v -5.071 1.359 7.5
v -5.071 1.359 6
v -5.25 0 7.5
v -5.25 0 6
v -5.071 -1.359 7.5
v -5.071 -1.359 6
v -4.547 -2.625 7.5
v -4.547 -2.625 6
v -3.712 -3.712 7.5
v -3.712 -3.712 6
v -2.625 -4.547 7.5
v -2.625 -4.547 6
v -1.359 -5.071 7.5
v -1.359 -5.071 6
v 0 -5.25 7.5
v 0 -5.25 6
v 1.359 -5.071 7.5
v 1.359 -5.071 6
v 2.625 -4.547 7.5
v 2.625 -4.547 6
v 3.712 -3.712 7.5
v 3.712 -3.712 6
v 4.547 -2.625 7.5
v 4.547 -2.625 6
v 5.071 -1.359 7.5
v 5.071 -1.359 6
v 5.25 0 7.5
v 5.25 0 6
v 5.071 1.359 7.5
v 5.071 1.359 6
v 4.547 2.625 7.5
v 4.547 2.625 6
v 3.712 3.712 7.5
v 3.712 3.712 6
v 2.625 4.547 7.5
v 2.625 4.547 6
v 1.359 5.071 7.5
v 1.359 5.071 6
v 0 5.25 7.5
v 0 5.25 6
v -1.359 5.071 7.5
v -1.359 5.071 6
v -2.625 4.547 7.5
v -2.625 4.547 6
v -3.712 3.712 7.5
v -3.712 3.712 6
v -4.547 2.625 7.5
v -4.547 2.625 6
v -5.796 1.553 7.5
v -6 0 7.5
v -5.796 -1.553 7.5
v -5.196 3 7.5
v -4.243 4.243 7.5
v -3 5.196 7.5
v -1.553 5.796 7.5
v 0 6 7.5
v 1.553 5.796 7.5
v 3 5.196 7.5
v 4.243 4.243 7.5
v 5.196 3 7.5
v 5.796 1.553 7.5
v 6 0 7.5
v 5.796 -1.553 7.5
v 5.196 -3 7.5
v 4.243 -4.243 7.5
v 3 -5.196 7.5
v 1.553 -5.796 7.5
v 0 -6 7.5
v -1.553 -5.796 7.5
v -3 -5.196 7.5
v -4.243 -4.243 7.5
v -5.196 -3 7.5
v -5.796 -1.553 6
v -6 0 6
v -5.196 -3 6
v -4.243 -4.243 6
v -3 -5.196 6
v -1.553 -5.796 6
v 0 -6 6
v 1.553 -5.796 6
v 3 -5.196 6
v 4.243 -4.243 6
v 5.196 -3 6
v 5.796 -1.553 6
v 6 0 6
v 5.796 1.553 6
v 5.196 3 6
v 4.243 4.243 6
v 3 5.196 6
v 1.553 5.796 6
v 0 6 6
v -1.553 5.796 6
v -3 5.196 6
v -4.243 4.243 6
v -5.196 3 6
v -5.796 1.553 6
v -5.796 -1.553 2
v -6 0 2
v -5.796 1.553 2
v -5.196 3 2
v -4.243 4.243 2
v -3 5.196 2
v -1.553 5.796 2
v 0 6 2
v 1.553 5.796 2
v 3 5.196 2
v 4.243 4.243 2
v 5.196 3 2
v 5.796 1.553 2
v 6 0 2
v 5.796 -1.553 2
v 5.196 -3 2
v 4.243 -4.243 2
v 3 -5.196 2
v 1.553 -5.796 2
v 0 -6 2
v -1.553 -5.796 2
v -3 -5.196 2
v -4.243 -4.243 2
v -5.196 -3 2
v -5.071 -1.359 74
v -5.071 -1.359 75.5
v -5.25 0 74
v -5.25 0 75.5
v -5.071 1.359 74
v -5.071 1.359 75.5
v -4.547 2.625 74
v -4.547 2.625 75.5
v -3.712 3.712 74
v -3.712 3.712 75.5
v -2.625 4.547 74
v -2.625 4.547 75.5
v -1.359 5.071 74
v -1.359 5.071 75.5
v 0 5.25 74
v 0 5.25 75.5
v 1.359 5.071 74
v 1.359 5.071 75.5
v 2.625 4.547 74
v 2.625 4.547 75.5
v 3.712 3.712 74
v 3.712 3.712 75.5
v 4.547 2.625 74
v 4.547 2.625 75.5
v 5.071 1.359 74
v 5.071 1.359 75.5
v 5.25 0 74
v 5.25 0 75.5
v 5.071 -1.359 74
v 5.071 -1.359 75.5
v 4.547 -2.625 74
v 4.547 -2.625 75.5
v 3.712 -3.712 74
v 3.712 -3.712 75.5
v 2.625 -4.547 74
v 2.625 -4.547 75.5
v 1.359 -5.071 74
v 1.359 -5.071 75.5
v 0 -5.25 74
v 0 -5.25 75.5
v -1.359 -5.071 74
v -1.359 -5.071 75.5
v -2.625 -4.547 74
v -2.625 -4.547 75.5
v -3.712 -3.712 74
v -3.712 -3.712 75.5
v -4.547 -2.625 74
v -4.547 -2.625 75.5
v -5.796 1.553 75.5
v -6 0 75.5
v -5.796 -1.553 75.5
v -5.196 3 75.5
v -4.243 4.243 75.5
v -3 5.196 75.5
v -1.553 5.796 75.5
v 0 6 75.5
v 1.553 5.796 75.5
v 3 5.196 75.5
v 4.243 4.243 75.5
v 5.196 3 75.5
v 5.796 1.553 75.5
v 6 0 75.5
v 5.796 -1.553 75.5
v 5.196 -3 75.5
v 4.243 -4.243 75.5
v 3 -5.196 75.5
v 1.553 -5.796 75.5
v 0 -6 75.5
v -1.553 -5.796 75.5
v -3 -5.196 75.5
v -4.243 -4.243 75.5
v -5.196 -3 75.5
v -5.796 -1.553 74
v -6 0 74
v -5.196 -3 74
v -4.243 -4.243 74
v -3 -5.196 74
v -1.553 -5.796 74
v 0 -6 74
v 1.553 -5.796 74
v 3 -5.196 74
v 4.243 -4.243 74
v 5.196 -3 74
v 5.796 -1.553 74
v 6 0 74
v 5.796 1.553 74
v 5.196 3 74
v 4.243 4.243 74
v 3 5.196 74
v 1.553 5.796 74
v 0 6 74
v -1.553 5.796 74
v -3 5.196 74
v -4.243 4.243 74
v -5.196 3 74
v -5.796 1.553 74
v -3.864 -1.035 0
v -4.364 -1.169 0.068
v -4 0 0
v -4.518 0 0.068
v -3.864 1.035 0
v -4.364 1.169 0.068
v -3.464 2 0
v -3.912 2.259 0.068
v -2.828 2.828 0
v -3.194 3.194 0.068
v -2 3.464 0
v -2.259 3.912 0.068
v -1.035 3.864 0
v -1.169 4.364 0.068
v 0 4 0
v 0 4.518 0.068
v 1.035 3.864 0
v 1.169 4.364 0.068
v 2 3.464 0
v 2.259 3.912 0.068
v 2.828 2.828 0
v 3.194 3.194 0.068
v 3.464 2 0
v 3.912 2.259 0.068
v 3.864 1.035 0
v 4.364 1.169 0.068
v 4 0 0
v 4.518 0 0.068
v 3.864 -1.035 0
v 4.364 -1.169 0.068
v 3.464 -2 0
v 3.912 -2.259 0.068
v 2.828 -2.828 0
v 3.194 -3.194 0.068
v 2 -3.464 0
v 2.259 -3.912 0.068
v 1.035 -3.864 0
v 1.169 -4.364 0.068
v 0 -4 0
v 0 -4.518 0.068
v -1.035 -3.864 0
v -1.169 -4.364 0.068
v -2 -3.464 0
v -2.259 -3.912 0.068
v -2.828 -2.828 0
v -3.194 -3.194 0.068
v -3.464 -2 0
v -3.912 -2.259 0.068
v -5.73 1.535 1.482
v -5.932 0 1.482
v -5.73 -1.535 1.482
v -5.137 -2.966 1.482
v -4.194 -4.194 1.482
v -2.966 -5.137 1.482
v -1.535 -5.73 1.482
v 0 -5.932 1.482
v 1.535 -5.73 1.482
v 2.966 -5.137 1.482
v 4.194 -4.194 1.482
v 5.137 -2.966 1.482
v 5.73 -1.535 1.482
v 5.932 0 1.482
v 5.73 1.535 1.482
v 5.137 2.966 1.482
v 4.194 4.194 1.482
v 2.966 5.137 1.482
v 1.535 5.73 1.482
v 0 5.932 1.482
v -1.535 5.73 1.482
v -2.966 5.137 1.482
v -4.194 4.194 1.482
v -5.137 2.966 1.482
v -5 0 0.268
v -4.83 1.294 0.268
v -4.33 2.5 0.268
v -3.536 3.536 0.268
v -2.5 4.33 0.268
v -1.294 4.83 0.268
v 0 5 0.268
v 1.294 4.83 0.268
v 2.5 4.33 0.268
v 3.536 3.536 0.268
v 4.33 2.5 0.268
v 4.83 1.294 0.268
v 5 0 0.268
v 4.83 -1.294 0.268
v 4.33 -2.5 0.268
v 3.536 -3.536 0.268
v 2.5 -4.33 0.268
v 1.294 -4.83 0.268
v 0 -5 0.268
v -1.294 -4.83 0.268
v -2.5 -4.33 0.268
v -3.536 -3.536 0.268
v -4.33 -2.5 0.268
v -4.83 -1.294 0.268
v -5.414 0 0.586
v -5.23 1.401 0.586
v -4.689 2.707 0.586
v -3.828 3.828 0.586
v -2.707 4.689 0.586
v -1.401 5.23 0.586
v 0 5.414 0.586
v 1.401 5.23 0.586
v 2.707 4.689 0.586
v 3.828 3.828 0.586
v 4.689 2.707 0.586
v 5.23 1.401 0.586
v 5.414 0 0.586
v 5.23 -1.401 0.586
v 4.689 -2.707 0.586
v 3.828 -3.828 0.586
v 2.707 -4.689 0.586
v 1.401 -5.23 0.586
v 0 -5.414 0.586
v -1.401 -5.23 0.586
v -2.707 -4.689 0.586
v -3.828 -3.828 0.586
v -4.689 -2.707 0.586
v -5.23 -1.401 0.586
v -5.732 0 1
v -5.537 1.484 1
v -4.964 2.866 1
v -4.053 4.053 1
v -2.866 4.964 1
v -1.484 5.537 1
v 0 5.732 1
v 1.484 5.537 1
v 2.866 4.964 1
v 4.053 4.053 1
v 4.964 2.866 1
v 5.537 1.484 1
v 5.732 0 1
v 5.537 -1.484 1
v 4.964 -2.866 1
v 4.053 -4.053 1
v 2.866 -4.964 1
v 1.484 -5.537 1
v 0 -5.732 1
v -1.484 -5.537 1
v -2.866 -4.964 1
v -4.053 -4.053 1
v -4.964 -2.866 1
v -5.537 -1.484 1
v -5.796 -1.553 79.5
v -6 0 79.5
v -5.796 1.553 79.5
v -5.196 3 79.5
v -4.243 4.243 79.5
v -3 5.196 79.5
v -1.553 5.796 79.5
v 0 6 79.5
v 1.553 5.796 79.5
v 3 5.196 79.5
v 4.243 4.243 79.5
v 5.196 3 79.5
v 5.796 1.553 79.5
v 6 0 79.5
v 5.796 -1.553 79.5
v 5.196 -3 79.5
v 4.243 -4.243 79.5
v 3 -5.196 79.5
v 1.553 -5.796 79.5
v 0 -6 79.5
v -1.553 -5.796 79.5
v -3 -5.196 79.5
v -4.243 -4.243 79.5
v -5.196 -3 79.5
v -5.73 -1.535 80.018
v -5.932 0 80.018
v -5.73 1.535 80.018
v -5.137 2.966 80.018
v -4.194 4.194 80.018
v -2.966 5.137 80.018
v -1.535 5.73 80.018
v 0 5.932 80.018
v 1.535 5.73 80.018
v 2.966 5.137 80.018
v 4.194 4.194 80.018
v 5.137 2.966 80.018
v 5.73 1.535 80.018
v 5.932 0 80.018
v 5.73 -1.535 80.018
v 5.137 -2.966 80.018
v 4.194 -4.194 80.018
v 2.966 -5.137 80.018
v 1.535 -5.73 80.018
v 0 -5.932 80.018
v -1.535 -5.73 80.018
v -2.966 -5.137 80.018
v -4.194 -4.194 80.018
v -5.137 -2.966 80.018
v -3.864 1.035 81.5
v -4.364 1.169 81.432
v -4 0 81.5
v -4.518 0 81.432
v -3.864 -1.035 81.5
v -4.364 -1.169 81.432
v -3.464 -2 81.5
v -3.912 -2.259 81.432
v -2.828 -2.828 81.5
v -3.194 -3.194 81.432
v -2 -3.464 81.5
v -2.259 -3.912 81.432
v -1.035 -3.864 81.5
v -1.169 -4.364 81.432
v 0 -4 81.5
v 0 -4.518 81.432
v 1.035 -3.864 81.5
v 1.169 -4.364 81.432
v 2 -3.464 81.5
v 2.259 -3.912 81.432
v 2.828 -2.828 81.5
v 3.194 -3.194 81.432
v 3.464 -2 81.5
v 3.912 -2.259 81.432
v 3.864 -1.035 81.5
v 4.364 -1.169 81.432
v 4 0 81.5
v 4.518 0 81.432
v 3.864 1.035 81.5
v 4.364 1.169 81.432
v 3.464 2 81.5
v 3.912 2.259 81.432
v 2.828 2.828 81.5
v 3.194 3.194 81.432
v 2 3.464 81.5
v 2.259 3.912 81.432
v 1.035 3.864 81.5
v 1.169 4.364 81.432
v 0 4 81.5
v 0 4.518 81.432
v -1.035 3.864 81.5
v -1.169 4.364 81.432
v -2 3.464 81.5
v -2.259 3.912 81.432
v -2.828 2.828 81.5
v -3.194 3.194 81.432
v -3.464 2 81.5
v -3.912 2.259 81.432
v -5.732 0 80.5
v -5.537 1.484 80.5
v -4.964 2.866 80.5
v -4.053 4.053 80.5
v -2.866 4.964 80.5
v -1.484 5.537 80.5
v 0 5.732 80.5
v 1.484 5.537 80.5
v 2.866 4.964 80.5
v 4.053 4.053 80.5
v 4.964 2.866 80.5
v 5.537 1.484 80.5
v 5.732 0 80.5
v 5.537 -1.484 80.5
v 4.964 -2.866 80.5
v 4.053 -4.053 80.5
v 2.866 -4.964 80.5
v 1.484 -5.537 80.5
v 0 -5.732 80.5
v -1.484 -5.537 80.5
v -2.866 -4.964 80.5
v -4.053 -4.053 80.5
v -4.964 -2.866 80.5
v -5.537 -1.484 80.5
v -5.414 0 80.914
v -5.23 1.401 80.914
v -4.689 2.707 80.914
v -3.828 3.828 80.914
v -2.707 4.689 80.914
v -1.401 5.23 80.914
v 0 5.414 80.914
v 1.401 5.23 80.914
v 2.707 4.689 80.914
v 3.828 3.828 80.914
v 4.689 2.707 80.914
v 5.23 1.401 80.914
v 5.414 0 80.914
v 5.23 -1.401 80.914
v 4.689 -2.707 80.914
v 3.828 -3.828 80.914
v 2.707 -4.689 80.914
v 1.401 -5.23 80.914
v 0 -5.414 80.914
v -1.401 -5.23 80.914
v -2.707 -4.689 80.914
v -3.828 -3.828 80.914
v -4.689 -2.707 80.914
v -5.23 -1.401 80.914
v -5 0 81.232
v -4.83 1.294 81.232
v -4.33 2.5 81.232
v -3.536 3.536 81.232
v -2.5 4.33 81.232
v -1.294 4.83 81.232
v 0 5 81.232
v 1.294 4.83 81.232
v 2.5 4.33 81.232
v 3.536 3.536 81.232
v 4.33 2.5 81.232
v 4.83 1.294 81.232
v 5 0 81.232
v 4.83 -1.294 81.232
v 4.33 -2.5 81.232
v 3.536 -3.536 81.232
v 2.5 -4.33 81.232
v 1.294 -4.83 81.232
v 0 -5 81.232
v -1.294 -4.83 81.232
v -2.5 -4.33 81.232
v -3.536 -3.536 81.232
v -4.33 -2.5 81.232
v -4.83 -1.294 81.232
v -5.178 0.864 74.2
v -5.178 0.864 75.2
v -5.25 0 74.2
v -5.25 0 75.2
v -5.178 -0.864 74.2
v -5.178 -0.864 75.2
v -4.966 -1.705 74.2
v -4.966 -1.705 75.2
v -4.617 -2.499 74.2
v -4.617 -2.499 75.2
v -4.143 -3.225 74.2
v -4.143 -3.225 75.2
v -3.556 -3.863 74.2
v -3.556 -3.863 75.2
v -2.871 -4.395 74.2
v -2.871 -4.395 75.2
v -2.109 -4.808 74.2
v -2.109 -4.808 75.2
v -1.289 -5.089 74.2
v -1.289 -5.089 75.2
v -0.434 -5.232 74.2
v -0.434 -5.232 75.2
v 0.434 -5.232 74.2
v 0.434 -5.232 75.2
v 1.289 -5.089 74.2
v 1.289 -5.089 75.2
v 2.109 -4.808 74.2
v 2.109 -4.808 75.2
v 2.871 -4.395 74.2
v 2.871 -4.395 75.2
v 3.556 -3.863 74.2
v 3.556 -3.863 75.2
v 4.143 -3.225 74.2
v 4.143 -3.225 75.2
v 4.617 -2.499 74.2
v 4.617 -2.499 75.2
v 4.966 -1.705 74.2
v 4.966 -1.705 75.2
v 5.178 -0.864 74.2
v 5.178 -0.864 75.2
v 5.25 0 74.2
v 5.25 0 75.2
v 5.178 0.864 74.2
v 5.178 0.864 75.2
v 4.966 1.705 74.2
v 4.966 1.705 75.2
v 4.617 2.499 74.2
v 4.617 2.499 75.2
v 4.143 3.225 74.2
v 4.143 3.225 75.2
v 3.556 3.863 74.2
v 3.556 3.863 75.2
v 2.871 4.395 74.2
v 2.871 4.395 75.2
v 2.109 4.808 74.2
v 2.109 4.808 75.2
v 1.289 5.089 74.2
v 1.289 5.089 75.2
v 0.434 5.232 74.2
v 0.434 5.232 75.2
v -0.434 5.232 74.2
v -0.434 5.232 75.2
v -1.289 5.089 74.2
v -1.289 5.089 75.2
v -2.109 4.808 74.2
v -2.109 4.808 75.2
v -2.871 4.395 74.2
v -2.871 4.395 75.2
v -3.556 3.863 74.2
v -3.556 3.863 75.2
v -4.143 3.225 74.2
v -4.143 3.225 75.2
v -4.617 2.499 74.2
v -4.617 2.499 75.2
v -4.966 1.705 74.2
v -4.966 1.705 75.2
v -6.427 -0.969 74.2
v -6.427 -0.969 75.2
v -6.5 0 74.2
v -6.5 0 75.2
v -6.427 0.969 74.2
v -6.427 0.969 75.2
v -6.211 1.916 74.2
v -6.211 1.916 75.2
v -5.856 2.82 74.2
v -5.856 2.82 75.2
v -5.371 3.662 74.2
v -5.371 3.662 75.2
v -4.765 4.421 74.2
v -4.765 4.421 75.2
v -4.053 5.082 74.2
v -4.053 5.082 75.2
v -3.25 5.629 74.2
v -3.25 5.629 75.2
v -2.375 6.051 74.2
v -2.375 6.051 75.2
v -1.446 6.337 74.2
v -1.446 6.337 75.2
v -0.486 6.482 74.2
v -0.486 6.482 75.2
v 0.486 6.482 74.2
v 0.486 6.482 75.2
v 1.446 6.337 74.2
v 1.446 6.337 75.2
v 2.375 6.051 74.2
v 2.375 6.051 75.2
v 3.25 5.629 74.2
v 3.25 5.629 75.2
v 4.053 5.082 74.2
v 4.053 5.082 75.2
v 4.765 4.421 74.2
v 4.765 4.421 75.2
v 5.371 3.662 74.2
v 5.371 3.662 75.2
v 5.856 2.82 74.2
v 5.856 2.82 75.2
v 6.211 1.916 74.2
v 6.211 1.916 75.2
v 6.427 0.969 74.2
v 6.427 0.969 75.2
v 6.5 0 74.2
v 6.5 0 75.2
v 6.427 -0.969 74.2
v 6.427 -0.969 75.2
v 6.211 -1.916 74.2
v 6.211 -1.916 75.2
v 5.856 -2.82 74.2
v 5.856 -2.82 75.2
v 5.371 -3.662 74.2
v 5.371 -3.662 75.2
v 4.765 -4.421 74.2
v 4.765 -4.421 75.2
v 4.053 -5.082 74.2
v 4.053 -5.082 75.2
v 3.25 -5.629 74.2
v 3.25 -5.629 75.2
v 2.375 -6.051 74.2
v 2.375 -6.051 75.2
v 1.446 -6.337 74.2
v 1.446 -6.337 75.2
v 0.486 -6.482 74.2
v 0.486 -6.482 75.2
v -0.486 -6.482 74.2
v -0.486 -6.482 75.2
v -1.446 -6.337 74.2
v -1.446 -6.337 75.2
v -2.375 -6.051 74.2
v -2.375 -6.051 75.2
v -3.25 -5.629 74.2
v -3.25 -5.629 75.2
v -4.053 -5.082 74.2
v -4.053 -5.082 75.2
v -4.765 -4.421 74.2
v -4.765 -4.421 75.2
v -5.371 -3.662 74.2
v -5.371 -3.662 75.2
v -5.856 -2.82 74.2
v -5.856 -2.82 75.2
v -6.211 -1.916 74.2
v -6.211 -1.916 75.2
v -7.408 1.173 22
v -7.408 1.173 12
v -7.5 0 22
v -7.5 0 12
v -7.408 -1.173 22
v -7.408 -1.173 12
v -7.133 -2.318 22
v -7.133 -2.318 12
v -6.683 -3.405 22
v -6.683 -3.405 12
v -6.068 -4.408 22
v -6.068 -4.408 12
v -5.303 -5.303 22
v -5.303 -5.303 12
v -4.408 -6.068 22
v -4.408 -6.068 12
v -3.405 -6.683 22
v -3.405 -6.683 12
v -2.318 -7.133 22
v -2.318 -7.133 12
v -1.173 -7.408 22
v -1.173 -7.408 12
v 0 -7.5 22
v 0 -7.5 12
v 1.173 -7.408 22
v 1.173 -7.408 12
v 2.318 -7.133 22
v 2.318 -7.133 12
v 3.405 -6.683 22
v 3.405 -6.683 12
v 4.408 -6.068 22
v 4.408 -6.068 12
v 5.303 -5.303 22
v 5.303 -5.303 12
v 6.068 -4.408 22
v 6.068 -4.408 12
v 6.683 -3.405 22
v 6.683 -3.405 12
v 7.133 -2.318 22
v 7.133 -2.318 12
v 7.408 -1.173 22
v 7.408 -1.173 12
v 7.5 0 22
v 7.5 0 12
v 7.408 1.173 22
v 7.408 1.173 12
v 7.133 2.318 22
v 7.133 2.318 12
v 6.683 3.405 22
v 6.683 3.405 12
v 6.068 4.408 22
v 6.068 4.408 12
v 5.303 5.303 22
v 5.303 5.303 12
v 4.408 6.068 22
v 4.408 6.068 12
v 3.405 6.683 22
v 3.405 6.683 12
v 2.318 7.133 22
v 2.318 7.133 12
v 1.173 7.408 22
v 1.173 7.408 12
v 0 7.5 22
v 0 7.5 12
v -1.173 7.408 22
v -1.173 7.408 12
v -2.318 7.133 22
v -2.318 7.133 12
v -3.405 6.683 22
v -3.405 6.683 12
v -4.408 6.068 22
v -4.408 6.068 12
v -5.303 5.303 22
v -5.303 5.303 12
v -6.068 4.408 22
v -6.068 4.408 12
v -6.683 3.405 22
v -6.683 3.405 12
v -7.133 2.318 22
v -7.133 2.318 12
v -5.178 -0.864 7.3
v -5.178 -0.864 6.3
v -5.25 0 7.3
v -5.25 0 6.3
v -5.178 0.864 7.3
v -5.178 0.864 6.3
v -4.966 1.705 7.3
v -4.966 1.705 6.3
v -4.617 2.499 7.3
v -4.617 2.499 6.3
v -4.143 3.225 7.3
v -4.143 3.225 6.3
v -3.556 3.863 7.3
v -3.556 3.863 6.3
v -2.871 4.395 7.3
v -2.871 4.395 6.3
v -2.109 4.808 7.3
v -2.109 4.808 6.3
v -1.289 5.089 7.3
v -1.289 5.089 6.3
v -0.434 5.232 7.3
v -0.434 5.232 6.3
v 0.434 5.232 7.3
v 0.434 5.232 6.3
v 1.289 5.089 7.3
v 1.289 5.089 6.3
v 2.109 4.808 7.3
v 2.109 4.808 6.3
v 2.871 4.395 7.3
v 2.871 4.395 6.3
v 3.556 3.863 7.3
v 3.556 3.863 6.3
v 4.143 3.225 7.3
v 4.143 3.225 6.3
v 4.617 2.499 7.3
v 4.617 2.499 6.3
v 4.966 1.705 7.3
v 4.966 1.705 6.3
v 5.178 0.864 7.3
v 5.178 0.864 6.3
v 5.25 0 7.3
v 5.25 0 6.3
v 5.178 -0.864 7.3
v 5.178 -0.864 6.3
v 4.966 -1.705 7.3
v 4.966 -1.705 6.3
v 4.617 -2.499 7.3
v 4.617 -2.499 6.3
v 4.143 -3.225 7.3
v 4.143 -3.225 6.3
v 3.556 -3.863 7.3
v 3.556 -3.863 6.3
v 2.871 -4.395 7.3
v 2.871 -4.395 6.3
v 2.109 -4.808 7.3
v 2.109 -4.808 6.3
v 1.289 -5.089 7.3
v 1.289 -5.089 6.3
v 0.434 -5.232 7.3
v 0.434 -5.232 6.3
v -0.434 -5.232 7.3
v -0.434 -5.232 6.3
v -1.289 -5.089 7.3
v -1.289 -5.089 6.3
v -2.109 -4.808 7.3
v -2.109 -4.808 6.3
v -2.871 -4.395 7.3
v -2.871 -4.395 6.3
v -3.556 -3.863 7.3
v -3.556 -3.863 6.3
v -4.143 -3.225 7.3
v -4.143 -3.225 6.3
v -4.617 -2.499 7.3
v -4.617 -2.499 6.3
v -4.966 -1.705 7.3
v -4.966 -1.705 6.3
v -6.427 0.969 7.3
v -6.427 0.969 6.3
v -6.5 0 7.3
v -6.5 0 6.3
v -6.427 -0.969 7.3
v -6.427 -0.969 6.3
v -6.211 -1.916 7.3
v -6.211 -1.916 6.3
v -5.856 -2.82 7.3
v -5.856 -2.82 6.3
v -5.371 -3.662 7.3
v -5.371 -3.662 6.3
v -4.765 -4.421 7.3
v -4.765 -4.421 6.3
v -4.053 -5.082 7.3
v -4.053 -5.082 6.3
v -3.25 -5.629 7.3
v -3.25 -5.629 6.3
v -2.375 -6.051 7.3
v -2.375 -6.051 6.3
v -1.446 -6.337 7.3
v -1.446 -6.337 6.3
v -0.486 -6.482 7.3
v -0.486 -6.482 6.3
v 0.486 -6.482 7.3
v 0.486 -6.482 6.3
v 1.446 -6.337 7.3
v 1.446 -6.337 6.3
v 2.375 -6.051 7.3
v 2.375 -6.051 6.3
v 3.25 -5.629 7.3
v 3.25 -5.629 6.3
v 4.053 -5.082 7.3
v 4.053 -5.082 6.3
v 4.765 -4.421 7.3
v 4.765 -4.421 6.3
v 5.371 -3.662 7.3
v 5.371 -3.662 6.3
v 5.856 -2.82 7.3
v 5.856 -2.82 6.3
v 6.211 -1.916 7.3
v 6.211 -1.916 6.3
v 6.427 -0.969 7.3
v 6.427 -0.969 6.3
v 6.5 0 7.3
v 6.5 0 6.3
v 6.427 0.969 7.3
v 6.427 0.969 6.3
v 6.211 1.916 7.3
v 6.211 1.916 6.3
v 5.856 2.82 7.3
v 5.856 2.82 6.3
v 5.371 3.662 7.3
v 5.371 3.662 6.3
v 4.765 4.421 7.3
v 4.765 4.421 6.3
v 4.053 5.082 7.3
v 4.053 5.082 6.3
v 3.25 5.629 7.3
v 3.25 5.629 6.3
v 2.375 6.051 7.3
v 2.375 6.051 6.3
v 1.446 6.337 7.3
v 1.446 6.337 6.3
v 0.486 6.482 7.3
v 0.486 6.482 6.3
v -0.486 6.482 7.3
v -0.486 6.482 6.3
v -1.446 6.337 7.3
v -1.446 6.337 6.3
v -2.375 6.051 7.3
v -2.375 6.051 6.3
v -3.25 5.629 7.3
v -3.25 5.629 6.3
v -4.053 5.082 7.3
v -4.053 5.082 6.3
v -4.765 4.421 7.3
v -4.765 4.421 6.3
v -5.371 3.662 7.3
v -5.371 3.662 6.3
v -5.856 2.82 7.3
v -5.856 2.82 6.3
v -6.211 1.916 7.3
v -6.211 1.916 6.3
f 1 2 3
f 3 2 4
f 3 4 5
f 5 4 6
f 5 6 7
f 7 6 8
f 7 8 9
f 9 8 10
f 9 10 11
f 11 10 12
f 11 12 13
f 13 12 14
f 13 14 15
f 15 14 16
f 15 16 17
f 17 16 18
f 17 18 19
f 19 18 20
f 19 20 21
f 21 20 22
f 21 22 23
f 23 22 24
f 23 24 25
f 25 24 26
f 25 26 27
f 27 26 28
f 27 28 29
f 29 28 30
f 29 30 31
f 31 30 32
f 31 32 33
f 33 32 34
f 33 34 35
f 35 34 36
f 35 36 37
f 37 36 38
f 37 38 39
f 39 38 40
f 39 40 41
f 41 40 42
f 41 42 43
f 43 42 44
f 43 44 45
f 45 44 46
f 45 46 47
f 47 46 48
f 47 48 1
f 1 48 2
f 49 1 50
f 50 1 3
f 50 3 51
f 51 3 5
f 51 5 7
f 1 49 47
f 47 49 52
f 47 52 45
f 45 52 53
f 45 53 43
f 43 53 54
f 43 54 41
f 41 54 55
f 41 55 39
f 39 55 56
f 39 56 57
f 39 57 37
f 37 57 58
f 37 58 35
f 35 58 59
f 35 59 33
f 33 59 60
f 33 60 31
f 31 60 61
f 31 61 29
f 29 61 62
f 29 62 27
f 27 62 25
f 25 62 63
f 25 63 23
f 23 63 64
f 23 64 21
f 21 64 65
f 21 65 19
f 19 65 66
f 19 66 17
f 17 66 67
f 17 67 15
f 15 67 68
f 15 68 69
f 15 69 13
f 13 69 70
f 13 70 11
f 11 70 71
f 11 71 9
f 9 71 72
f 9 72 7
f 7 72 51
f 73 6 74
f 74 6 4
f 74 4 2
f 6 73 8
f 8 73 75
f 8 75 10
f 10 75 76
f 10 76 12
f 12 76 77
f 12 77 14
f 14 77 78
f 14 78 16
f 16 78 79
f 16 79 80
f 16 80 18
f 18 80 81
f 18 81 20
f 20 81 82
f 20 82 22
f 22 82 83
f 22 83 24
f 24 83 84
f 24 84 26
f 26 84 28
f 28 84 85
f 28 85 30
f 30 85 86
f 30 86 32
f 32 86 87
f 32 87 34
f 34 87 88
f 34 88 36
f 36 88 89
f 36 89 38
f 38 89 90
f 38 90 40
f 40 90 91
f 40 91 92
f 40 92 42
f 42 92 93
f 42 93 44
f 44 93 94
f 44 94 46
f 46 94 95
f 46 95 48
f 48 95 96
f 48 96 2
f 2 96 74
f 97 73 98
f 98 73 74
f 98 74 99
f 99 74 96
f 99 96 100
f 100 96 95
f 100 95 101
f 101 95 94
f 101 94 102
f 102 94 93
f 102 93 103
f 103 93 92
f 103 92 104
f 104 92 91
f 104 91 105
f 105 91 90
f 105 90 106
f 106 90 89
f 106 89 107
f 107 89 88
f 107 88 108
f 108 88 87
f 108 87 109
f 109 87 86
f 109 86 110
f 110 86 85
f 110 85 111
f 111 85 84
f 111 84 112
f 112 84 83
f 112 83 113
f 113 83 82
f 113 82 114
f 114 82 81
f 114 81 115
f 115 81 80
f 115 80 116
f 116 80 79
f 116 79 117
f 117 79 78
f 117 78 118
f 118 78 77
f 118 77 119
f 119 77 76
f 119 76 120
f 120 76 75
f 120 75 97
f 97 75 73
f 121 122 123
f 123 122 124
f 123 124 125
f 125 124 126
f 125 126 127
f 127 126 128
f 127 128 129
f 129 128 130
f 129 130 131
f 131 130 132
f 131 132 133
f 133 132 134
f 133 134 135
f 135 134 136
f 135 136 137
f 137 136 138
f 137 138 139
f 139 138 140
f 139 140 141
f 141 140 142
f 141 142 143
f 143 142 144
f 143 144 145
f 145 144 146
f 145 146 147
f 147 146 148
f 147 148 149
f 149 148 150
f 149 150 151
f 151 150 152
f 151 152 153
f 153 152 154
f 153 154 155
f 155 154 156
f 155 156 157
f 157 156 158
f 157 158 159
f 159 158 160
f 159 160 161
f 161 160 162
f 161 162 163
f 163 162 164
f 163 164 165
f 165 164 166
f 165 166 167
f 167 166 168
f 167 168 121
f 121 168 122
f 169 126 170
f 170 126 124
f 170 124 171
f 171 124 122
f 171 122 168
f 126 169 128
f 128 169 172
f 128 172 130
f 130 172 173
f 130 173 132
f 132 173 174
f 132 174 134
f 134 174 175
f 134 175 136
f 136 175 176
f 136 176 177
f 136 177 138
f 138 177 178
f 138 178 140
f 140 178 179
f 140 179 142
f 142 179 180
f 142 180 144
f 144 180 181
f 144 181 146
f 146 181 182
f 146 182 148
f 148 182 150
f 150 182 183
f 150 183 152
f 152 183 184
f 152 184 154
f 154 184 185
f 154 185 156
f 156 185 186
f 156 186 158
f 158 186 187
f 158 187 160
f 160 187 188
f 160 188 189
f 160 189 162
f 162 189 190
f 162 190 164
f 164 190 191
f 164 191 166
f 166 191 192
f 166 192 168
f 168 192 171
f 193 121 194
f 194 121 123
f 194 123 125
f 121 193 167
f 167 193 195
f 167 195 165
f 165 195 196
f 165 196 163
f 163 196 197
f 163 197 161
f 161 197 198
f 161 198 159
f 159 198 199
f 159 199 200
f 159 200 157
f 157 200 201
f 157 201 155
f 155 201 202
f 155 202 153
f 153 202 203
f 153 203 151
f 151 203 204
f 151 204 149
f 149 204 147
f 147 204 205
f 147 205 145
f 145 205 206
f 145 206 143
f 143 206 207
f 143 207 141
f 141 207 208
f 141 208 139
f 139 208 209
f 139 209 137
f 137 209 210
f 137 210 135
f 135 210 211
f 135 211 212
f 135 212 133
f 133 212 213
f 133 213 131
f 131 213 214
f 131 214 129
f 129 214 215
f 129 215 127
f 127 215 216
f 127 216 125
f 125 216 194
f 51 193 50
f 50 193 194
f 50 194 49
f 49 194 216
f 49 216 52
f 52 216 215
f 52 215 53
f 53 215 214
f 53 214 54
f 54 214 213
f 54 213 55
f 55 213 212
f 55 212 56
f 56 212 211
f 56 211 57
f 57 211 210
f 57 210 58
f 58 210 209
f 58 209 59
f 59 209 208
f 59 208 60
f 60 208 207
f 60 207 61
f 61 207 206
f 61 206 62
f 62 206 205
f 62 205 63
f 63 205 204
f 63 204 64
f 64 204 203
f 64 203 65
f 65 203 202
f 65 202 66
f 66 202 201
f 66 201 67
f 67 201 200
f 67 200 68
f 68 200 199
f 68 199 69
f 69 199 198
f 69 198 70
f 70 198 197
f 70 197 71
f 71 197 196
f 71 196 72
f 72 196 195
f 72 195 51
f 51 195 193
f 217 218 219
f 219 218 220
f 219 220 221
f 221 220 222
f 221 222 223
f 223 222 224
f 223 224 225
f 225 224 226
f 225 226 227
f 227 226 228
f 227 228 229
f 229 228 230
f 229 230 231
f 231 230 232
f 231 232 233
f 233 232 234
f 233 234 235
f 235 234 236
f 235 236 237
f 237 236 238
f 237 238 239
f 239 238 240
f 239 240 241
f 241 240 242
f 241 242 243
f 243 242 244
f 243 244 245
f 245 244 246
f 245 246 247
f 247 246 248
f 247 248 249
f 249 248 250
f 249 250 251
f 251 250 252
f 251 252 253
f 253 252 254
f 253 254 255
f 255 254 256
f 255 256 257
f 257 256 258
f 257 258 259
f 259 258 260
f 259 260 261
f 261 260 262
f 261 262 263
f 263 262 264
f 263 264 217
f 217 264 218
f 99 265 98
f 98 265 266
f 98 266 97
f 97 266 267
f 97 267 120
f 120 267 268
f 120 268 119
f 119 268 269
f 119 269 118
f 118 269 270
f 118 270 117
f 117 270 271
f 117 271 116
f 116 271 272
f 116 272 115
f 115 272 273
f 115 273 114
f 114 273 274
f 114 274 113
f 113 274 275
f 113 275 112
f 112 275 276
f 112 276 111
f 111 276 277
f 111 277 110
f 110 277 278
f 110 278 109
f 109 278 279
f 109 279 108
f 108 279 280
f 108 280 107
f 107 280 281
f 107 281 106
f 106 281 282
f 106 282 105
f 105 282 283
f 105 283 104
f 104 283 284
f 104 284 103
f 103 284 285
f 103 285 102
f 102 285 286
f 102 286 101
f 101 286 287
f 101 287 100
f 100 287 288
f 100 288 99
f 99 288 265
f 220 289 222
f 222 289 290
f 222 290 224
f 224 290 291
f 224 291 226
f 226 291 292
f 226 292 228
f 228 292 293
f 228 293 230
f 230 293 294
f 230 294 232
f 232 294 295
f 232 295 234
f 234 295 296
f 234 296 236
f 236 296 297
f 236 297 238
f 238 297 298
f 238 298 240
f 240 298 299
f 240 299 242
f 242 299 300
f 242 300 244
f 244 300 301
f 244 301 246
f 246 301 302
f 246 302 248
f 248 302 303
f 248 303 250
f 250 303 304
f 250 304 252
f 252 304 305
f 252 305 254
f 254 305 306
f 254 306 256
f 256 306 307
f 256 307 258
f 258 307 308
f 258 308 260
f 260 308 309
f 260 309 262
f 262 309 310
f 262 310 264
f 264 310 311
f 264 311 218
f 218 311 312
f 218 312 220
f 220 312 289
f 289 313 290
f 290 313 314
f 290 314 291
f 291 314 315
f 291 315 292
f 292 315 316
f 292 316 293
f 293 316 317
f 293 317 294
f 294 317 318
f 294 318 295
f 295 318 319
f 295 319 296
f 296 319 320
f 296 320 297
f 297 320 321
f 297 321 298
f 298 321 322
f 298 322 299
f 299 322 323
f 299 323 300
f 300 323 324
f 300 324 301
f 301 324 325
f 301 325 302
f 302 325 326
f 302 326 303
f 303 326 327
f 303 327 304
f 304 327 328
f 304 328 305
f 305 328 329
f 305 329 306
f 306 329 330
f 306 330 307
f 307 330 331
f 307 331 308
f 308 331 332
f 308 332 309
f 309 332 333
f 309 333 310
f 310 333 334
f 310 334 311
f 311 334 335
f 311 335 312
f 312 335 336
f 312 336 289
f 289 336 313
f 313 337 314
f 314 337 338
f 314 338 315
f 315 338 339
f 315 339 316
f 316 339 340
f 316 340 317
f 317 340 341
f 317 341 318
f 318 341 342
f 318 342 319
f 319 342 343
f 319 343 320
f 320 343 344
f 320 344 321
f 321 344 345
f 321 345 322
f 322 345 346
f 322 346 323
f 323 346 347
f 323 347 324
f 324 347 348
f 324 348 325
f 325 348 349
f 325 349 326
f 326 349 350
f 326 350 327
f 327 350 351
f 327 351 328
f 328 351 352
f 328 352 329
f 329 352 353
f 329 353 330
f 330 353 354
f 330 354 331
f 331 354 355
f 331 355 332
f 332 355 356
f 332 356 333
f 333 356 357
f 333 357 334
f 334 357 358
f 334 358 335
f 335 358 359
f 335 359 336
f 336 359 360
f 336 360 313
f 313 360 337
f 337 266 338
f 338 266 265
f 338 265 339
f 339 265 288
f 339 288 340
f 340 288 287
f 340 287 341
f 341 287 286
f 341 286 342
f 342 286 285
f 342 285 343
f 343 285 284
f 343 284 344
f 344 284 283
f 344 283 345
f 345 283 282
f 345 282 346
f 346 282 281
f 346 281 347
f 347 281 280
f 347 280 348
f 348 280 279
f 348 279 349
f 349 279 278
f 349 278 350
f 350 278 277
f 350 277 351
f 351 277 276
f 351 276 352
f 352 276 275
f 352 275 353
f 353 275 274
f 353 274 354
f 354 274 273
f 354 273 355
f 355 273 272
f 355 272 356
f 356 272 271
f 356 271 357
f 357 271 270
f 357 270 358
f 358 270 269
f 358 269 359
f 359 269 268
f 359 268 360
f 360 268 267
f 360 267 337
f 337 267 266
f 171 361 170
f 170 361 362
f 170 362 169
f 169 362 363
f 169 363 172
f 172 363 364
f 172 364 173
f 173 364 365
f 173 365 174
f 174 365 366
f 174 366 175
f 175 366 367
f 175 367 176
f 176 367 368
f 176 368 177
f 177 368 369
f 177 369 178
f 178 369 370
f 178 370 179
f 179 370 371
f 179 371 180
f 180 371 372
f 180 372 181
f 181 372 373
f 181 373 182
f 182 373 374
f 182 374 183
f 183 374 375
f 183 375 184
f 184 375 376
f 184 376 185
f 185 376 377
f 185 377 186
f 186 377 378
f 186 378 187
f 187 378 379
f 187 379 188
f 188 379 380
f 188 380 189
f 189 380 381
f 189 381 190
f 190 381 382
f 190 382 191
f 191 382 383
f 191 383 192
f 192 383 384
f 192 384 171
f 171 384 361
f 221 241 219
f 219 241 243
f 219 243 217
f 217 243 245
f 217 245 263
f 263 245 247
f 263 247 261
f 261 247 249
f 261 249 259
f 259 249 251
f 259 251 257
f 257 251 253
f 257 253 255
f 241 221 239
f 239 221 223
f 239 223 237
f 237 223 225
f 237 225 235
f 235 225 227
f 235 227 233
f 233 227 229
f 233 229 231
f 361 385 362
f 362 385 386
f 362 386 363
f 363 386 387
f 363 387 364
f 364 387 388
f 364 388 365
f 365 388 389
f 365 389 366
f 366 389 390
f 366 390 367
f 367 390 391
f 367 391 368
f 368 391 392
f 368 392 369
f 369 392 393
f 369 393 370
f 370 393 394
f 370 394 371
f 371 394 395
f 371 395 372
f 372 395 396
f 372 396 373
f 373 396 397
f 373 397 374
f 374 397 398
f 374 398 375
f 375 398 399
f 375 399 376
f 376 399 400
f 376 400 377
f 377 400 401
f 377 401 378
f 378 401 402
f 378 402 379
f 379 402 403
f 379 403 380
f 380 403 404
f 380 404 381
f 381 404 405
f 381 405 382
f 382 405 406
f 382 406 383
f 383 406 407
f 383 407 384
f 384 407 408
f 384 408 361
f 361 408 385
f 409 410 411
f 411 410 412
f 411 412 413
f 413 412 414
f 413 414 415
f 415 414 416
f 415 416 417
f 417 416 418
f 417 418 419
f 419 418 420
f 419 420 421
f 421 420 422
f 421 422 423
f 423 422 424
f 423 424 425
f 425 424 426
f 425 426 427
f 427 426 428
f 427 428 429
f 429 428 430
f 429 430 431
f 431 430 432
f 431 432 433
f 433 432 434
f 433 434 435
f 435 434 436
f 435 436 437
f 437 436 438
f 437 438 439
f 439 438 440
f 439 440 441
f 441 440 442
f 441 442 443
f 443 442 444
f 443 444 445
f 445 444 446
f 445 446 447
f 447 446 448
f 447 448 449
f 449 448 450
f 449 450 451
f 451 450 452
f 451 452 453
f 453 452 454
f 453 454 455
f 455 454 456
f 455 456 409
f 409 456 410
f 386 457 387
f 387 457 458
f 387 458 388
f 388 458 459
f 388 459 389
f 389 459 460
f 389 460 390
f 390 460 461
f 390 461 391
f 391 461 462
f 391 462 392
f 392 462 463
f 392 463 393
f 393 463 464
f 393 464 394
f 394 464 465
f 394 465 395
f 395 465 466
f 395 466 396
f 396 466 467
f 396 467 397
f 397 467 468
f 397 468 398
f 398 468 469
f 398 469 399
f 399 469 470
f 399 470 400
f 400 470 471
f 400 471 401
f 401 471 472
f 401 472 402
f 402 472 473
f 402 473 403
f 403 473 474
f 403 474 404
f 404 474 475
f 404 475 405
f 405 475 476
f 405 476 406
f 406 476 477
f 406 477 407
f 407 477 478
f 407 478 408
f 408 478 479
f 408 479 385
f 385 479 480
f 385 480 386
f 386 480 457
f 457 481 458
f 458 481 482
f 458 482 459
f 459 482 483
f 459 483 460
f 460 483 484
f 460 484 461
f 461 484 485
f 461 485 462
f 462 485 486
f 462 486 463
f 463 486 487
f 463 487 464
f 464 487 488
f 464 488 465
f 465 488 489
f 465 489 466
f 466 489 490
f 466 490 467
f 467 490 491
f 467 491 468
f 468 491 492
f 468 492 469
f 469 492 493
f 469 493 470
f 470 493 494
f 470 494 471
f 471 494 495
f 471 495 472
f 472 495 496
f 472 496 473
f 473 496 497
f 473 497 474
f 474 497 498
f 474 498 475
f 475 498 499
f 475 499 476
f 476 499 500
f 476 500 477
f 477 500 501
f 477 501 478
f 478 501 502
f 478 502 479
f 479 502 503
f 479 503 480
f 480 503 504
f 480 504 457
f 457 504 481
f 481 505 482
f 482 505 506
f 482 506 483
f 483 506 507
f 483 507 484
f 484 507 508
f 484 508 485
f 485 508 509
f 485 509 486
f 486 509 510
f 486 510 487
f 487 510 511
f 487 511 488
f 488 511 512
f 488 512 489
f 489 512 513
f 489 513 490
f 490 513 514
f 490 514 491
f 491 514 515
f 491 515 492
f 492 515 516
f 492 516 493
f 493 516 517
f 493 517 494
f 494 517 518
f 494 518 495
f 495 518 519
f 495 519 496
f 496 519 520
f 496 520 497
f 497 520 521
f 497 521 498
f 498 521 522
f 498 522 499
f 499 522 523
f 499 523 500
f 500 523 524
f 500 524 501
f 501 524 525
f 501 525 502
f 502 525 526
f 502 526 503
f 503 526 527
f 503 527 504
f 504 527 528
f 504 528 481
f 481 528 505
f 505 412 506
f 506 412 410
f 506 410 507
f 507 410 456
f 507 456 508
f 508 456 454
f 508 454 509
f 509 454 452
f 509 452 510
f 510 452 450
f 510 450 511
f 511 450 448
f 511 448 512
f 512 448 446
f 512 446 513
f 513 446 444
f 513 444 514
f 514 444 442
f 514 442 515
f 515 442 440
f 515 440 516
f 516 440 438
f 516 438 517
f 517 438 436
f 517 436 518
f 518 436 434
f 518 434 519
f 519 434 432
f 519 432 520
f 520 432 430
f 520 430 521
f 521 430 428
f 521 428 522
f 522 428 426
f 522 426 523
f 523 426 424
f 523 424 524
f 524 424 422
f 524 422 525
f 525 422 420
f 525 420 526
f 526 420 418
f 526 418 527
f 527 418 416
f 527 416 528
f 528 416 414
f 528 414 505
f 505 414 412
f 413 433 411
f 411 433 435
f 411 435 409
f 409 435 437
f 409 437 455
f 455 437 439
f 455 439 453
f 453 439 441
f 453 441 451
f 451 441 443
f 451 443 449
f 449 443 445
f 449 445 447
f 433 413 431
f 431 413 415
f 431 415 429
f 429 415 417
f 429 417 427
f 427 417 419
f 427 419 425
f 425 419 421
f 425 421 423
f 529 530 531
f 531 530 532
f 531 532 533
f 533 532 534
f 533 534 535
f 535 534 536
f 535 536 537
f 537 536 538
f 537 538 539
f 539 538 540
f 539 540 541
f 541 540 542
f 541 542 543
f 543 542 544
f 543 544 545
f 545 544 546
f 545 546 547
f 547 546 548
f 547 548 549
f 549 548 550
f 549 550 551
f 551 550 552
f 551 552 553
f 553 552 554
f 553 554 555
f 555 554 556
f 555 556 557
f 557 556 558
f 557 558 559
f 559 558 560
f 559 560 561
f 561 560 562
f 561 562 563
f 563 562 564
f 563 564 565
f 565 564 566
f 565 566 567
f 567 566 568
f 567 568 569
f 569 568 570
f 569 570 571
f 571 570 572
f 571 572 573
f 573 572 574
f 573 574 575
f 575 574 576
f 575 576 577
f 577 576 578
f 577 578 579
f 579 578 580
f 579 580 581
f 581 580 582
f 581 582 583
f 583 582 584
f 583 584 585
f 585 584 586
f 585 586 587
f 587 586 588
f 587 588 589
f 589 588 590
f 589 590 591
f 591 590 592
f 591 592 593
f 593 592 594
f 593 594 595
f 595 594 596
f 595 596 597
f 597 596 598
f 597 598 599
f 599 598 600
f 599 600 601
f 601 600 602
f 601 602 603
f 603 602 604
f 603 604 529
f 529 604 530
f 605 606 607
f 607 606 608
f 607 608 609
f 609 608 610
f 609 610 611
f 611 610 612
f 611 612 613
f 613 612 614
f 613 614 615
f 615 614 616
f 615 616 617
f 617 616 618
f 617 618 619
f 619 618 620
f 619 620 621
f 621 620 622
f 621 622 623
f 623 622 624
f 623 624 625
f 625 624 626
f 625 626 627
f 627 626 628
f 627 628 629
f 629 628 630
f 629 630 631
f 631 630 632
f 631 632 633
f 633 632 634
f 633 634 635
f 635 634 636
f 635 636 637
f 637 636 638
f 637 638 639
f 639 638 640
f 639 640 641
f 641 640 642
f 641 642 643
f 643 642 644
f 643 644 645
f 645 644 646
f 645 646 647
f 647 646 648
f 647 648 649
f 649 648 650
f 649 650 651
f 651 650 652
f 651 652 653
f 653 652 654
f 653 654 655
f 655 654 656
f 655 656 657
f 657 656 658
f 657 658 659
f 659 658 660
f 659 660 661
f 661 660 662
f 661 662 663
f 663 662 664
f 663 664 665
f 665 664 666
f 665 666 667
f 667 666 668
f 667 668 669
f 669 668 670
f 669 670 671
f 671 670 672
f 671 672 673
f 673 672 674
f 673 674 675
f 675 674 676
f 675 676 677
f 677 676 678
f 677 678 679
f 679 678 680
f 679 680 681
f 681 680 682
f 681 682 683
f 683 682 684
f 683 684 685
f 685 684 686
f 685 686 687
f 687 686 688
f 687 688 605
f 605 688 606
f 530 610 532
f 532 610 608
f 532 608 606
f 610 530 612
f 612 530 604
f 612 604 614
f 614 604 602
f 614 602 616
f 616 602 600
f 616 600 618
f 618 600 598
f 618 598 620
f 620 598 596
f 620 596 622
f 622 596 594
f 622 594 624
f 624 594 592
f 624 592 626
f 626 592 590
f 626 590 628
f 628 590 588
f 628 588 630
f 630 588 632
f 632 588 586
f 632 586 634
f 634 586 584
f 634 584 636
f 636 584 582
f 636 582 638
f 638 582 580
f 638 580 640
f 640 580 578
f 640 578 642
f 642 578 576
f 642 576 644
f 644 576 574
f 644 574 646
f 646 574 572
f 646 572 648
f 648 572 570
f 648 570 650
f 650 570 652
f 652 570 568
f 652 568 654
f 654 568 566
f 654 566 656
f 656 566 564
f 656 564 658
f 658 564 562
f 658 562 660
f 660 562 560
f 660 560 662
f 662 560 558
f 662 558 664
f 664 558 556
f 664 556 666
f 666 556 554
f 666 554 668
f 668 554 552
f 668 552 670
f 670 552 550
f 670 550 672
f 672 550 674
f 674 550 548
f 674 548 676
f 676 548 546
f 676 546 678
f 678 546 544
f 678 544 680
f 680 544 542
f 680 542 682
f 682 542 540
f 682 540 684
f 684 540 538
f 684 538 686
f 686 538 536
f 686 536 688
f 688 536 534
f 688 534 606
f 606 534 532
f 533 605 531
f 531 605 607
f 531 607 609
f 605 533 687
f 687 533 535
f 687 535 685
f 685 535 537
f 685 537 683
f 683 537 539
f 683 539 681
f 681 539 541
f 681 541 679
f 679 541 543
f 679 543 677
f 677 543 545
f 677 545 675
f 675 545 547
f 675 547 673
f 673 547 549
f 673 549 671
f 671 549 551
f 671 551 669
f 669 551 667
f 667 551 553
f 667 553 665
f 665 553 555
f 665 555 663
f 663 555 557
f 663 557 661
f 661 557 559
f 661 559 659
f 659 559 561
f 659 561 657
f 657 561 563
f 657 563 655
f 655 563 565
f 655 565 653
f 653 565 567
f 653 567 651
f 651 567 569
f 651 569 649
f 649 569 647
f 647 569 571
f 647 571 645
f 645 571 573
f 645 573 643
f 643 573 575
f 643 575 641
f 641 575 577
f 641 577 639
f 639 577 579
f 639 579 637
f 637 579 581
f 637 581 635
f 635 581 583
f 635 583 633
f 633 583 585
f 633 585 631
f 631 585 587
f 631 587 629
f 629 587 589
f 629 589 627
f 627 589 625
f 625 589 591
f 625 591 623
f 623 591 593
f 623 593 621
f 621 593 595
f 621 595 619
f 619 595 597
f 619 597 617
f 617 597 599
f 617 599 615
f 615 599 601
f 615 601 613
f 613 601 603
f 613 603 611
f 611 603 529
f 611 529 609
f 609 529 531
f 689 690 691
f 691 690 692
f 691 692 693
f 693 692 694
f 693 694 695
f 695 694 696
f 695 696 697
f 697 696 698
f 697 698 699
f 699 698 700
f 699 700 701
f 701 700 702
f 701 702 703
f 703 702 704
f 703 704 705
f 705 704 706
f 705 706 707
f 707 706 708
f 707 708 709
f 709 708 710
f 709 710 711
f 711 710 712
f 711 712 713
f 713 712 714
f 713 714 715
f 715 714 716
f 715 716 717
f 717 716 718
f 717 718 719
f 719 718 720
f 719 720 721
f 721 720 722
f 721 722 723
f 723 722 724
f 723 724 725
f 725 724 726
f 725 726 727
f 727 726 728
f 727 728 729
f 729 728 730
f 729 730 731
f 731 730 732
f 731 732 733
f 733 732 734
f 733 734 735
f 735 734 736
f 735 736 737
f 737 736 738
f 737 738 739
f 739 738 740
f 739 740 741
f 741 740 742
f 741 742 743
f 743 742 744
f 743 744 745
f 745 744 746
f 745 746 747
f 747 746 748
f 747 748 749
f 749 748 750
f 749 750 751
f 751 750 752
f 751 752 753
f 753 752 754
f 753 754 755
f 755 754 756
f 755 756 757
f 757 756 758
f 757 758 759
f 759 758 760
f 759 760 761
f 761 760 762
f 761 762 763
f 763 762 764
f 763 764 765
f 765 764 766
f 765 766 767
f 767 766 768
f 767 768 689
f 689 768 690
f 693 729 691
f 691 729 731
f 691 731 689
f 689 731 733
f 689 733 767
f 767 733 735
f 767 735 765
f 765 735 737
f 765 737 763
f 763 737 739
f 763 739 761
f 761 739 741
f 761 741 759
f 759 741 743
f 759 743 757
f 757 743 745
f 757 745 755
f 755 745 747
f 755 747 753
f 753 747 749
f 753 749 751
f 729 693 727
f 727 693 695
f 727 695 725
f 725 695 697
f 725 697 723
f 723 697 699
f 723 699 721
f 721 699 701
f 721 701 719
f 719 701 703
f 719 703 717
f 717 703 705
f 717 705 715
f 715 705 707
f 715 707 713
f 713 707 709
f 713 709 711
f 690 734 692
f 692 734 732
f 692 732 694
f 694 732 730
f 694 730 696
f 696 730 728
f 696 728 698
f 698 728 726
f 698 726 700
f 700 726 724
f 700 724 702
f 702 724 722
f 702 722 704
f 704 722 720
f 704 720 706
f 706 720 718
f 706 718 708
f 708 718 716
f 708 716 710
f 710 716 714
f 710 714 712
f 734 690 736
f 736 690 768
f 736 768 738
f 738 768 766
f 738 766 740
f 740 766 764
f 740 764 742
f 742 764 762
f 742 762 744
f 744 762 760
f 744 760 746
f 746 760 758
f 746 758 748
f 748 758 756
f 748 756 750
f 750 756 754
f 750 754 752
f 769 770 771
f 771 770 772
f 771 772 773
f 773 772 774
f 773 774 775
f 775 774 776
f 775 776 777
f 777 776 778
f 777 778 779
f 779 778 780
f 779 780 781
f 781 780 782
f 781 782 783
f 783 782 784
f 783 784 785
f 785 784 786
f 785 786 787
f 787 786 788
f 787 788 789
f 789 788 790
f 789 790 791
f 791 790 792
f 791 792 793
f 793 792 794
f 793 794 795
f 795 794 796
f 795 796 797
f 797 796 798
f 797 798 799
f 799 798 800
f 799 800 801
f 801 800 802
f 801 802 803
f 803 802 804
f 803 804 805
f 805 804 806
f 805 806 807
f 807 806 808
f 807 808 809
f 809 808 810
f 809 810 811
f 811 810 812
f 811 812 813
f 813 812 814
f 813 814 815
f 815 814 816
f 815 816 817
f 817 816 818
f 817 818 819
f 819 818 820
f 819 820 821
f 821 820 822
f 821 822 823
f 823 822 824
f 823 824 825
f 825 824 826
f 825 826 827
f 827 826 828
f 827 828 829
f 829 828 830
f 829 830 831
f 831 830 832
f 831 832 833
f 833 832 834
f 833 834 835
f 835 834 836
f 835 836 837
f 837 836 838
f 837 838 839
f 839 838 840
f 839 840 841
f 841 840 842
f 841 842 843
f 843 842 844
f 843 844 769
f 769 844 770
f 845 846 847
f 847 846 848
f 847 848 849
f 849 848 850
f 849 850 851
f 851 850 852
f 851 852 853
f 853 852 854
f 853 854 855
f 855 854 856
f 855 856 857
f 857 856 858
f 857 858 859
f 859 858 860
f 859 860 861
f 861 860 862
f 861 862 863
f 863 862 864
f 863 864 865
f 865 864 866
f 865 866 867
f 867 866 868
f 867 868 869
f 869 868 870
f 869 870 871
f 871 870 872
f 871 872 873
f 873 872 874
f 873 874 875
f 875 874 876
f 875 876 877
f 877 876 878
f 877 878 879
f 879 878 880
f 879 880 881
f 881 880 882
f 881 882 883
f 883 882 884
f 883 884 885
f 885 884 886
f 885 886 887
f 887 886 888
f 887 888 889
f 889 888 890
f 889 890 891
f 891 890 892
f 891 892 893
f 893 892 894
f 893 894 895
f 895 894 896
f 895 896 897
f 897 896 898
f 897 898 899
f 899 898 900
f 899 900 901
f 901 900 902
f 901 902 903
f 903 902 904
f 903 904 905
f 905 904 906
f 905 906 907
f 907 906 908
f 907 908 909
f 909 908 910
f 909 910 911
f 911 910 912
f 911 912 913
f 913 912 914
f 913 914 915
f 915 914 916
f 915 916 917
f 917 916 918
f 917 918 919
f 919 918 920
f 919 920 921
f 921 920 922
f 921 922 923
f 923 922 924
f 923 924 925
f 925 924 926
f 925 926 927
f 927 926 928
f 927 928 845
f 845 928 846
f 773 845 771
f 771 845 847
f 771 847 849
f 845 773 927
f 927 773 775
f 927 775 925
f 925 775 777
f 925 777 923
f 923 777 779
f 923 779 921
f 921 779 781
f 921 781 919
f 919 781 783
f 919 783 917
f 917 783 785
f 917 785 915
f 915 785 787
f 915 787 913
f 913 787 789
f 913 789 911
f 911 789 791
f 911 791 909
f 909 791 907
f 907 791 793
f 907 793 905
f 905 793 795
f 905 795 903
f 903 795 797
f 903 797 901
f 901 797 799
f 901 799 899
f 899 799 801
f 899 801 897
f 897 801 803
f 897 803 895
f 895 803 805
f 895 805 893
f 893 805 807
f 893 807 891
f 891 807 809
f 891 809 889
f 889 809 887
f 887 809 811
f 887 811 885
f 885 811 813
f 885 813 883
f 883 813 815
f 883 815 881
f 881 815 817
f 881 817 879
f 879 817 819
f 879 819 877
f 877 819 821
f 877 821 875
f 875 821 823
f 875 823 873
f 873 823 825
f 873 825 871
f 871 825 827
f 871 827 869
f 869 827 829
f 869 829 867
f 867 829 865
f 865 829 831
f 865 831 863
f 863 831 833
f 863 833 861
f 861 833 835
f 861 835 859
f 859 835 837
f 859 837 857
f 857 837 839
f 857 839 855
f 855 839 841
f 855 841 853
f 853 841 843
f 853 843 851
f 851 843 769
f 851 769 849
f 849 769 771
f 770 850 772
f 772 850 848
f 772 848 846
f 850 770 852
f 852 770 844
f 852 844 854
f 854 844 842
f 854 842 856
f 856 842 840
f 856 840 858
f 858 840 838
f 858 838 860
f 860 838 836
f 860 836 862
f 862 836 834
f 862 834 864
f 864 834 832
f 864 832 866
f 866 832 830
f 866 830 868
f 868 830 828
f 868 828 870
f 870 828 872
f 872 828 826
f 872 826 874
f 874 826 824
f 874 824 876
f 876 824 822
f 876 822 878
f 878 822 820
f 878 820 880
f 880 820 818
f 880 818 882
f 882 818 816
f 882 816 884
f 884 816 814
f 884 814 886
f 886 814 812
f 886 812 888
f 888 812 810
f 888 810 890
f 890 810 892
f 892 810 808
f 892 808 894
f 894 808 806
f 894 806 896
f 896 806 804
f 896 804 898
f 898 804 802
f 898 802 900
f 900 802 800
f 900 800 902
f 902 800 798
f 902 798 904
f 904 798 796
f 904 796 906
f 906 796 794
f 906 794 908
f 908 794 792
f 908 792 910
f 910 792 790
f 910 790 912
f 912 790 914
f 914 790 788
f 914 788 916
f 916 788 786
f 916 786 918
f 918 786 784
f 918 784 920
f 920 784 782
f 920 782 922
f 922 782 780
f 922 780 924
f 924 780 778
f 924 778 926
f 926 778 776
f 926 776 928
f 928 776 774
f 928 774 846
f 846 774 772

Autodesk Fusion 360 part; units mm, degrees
sketch "Esboço1" plane through (0, 0, 0) normal (0, 0, 1) x (1, 0, 0)
  circle A0 centre (0, 0) radius 6
  dimension "d1" = 12
extrude "Extrusão1" add sketch "Esboço1" along normal blind 81.5 makes body 1
fillet "Arredondamento1" radius 2 2 edges at (-5.594, -2.1697, 81.5) (-5.594, -2.1697, 0) on bodies 1
ref_plane "Plano de trabalho1" through (0, 0, 12) normal (0, 0, 1) x (1, 0, 0)
ref_plane "Plano de trabalho2" through (0, 0, 6) normal (0, 0, 1) x (1, 0, 0)
ref_plane "Plano de trabalho3" through (0, 0, 75.5) normal (0, 0, 1) x (1, 0, 0)
sketch "Esboço2" plane through (0, 0, 75.5) normal (0, 0, 1) x (1, 0, 0)
  circle A0 centre (0, 0) radius 6.25
  circle A1 centre (0, 0) radius 5.25
  dimension "d9" = 12.5
  dimension "d12" = 10.5
extrude "Extrusão2" cut sketch "Esboço2" against normal blind 1.5 bodies 1
ref_plane "Plano de trabalho4" through (0, 0, 75.2) normal (0, 0, 1) x (1, 0, 0)
sketch "Esboço3" plane through (0, 0, 75.2) normal (0, 0, 1) x (1, 0, 0)
  circle A0 centre (0, 0) radius 5.25
  circle A1 centre (0, 0) radius 6.5
  dimension "d13" = 13
  dimension "d14" = 10.5
extrude "Extrusão3" add sketch "Esboço3" against normal blind 1 separate body makes body 2
sketch "Esboço4" plane through (0, 0, 12) normal (0, 0, 1) x (1, 0, 0)
  circle A0 centre (0, 0) radius 7.5
  dimension "d18" = 15
extrude "Extrusão4" add sketch "Esboço4" along normal blind 10 separate body makes body 3
sketch "Esboço5" plane through (0, 0, 6) normal (0, 0, 1) x (1, 0, 0)
  circle A0 centre (0, 0) radius 7
  circle A1 centre (0, 0) radius 5.25
  dimension "d21" = 10.5
  dimension "d22" = 14
extrude "Extrusão5" cut sketch "Esboço5" along normal blind 1.5 bodies 1
ref_plane "Plano de trabalho5" through (0, 0, 6.3) normal (0, 0, 1) x (1, 0, 0)
sketch "Esboço6" plane through (0, 0, 6.3) normal (0, 0, 1) x (1, 0, 0)
  circle A0 centre (0, 0) radius 5.25
  circle A1 centre (0, 0) radius 6.5
  dimension "d26" = 10.5
  dimension "d27" = 13
extrude "Extrusão6" add sketch "Esboço6" along normal blind 1 separate body makes body 4
